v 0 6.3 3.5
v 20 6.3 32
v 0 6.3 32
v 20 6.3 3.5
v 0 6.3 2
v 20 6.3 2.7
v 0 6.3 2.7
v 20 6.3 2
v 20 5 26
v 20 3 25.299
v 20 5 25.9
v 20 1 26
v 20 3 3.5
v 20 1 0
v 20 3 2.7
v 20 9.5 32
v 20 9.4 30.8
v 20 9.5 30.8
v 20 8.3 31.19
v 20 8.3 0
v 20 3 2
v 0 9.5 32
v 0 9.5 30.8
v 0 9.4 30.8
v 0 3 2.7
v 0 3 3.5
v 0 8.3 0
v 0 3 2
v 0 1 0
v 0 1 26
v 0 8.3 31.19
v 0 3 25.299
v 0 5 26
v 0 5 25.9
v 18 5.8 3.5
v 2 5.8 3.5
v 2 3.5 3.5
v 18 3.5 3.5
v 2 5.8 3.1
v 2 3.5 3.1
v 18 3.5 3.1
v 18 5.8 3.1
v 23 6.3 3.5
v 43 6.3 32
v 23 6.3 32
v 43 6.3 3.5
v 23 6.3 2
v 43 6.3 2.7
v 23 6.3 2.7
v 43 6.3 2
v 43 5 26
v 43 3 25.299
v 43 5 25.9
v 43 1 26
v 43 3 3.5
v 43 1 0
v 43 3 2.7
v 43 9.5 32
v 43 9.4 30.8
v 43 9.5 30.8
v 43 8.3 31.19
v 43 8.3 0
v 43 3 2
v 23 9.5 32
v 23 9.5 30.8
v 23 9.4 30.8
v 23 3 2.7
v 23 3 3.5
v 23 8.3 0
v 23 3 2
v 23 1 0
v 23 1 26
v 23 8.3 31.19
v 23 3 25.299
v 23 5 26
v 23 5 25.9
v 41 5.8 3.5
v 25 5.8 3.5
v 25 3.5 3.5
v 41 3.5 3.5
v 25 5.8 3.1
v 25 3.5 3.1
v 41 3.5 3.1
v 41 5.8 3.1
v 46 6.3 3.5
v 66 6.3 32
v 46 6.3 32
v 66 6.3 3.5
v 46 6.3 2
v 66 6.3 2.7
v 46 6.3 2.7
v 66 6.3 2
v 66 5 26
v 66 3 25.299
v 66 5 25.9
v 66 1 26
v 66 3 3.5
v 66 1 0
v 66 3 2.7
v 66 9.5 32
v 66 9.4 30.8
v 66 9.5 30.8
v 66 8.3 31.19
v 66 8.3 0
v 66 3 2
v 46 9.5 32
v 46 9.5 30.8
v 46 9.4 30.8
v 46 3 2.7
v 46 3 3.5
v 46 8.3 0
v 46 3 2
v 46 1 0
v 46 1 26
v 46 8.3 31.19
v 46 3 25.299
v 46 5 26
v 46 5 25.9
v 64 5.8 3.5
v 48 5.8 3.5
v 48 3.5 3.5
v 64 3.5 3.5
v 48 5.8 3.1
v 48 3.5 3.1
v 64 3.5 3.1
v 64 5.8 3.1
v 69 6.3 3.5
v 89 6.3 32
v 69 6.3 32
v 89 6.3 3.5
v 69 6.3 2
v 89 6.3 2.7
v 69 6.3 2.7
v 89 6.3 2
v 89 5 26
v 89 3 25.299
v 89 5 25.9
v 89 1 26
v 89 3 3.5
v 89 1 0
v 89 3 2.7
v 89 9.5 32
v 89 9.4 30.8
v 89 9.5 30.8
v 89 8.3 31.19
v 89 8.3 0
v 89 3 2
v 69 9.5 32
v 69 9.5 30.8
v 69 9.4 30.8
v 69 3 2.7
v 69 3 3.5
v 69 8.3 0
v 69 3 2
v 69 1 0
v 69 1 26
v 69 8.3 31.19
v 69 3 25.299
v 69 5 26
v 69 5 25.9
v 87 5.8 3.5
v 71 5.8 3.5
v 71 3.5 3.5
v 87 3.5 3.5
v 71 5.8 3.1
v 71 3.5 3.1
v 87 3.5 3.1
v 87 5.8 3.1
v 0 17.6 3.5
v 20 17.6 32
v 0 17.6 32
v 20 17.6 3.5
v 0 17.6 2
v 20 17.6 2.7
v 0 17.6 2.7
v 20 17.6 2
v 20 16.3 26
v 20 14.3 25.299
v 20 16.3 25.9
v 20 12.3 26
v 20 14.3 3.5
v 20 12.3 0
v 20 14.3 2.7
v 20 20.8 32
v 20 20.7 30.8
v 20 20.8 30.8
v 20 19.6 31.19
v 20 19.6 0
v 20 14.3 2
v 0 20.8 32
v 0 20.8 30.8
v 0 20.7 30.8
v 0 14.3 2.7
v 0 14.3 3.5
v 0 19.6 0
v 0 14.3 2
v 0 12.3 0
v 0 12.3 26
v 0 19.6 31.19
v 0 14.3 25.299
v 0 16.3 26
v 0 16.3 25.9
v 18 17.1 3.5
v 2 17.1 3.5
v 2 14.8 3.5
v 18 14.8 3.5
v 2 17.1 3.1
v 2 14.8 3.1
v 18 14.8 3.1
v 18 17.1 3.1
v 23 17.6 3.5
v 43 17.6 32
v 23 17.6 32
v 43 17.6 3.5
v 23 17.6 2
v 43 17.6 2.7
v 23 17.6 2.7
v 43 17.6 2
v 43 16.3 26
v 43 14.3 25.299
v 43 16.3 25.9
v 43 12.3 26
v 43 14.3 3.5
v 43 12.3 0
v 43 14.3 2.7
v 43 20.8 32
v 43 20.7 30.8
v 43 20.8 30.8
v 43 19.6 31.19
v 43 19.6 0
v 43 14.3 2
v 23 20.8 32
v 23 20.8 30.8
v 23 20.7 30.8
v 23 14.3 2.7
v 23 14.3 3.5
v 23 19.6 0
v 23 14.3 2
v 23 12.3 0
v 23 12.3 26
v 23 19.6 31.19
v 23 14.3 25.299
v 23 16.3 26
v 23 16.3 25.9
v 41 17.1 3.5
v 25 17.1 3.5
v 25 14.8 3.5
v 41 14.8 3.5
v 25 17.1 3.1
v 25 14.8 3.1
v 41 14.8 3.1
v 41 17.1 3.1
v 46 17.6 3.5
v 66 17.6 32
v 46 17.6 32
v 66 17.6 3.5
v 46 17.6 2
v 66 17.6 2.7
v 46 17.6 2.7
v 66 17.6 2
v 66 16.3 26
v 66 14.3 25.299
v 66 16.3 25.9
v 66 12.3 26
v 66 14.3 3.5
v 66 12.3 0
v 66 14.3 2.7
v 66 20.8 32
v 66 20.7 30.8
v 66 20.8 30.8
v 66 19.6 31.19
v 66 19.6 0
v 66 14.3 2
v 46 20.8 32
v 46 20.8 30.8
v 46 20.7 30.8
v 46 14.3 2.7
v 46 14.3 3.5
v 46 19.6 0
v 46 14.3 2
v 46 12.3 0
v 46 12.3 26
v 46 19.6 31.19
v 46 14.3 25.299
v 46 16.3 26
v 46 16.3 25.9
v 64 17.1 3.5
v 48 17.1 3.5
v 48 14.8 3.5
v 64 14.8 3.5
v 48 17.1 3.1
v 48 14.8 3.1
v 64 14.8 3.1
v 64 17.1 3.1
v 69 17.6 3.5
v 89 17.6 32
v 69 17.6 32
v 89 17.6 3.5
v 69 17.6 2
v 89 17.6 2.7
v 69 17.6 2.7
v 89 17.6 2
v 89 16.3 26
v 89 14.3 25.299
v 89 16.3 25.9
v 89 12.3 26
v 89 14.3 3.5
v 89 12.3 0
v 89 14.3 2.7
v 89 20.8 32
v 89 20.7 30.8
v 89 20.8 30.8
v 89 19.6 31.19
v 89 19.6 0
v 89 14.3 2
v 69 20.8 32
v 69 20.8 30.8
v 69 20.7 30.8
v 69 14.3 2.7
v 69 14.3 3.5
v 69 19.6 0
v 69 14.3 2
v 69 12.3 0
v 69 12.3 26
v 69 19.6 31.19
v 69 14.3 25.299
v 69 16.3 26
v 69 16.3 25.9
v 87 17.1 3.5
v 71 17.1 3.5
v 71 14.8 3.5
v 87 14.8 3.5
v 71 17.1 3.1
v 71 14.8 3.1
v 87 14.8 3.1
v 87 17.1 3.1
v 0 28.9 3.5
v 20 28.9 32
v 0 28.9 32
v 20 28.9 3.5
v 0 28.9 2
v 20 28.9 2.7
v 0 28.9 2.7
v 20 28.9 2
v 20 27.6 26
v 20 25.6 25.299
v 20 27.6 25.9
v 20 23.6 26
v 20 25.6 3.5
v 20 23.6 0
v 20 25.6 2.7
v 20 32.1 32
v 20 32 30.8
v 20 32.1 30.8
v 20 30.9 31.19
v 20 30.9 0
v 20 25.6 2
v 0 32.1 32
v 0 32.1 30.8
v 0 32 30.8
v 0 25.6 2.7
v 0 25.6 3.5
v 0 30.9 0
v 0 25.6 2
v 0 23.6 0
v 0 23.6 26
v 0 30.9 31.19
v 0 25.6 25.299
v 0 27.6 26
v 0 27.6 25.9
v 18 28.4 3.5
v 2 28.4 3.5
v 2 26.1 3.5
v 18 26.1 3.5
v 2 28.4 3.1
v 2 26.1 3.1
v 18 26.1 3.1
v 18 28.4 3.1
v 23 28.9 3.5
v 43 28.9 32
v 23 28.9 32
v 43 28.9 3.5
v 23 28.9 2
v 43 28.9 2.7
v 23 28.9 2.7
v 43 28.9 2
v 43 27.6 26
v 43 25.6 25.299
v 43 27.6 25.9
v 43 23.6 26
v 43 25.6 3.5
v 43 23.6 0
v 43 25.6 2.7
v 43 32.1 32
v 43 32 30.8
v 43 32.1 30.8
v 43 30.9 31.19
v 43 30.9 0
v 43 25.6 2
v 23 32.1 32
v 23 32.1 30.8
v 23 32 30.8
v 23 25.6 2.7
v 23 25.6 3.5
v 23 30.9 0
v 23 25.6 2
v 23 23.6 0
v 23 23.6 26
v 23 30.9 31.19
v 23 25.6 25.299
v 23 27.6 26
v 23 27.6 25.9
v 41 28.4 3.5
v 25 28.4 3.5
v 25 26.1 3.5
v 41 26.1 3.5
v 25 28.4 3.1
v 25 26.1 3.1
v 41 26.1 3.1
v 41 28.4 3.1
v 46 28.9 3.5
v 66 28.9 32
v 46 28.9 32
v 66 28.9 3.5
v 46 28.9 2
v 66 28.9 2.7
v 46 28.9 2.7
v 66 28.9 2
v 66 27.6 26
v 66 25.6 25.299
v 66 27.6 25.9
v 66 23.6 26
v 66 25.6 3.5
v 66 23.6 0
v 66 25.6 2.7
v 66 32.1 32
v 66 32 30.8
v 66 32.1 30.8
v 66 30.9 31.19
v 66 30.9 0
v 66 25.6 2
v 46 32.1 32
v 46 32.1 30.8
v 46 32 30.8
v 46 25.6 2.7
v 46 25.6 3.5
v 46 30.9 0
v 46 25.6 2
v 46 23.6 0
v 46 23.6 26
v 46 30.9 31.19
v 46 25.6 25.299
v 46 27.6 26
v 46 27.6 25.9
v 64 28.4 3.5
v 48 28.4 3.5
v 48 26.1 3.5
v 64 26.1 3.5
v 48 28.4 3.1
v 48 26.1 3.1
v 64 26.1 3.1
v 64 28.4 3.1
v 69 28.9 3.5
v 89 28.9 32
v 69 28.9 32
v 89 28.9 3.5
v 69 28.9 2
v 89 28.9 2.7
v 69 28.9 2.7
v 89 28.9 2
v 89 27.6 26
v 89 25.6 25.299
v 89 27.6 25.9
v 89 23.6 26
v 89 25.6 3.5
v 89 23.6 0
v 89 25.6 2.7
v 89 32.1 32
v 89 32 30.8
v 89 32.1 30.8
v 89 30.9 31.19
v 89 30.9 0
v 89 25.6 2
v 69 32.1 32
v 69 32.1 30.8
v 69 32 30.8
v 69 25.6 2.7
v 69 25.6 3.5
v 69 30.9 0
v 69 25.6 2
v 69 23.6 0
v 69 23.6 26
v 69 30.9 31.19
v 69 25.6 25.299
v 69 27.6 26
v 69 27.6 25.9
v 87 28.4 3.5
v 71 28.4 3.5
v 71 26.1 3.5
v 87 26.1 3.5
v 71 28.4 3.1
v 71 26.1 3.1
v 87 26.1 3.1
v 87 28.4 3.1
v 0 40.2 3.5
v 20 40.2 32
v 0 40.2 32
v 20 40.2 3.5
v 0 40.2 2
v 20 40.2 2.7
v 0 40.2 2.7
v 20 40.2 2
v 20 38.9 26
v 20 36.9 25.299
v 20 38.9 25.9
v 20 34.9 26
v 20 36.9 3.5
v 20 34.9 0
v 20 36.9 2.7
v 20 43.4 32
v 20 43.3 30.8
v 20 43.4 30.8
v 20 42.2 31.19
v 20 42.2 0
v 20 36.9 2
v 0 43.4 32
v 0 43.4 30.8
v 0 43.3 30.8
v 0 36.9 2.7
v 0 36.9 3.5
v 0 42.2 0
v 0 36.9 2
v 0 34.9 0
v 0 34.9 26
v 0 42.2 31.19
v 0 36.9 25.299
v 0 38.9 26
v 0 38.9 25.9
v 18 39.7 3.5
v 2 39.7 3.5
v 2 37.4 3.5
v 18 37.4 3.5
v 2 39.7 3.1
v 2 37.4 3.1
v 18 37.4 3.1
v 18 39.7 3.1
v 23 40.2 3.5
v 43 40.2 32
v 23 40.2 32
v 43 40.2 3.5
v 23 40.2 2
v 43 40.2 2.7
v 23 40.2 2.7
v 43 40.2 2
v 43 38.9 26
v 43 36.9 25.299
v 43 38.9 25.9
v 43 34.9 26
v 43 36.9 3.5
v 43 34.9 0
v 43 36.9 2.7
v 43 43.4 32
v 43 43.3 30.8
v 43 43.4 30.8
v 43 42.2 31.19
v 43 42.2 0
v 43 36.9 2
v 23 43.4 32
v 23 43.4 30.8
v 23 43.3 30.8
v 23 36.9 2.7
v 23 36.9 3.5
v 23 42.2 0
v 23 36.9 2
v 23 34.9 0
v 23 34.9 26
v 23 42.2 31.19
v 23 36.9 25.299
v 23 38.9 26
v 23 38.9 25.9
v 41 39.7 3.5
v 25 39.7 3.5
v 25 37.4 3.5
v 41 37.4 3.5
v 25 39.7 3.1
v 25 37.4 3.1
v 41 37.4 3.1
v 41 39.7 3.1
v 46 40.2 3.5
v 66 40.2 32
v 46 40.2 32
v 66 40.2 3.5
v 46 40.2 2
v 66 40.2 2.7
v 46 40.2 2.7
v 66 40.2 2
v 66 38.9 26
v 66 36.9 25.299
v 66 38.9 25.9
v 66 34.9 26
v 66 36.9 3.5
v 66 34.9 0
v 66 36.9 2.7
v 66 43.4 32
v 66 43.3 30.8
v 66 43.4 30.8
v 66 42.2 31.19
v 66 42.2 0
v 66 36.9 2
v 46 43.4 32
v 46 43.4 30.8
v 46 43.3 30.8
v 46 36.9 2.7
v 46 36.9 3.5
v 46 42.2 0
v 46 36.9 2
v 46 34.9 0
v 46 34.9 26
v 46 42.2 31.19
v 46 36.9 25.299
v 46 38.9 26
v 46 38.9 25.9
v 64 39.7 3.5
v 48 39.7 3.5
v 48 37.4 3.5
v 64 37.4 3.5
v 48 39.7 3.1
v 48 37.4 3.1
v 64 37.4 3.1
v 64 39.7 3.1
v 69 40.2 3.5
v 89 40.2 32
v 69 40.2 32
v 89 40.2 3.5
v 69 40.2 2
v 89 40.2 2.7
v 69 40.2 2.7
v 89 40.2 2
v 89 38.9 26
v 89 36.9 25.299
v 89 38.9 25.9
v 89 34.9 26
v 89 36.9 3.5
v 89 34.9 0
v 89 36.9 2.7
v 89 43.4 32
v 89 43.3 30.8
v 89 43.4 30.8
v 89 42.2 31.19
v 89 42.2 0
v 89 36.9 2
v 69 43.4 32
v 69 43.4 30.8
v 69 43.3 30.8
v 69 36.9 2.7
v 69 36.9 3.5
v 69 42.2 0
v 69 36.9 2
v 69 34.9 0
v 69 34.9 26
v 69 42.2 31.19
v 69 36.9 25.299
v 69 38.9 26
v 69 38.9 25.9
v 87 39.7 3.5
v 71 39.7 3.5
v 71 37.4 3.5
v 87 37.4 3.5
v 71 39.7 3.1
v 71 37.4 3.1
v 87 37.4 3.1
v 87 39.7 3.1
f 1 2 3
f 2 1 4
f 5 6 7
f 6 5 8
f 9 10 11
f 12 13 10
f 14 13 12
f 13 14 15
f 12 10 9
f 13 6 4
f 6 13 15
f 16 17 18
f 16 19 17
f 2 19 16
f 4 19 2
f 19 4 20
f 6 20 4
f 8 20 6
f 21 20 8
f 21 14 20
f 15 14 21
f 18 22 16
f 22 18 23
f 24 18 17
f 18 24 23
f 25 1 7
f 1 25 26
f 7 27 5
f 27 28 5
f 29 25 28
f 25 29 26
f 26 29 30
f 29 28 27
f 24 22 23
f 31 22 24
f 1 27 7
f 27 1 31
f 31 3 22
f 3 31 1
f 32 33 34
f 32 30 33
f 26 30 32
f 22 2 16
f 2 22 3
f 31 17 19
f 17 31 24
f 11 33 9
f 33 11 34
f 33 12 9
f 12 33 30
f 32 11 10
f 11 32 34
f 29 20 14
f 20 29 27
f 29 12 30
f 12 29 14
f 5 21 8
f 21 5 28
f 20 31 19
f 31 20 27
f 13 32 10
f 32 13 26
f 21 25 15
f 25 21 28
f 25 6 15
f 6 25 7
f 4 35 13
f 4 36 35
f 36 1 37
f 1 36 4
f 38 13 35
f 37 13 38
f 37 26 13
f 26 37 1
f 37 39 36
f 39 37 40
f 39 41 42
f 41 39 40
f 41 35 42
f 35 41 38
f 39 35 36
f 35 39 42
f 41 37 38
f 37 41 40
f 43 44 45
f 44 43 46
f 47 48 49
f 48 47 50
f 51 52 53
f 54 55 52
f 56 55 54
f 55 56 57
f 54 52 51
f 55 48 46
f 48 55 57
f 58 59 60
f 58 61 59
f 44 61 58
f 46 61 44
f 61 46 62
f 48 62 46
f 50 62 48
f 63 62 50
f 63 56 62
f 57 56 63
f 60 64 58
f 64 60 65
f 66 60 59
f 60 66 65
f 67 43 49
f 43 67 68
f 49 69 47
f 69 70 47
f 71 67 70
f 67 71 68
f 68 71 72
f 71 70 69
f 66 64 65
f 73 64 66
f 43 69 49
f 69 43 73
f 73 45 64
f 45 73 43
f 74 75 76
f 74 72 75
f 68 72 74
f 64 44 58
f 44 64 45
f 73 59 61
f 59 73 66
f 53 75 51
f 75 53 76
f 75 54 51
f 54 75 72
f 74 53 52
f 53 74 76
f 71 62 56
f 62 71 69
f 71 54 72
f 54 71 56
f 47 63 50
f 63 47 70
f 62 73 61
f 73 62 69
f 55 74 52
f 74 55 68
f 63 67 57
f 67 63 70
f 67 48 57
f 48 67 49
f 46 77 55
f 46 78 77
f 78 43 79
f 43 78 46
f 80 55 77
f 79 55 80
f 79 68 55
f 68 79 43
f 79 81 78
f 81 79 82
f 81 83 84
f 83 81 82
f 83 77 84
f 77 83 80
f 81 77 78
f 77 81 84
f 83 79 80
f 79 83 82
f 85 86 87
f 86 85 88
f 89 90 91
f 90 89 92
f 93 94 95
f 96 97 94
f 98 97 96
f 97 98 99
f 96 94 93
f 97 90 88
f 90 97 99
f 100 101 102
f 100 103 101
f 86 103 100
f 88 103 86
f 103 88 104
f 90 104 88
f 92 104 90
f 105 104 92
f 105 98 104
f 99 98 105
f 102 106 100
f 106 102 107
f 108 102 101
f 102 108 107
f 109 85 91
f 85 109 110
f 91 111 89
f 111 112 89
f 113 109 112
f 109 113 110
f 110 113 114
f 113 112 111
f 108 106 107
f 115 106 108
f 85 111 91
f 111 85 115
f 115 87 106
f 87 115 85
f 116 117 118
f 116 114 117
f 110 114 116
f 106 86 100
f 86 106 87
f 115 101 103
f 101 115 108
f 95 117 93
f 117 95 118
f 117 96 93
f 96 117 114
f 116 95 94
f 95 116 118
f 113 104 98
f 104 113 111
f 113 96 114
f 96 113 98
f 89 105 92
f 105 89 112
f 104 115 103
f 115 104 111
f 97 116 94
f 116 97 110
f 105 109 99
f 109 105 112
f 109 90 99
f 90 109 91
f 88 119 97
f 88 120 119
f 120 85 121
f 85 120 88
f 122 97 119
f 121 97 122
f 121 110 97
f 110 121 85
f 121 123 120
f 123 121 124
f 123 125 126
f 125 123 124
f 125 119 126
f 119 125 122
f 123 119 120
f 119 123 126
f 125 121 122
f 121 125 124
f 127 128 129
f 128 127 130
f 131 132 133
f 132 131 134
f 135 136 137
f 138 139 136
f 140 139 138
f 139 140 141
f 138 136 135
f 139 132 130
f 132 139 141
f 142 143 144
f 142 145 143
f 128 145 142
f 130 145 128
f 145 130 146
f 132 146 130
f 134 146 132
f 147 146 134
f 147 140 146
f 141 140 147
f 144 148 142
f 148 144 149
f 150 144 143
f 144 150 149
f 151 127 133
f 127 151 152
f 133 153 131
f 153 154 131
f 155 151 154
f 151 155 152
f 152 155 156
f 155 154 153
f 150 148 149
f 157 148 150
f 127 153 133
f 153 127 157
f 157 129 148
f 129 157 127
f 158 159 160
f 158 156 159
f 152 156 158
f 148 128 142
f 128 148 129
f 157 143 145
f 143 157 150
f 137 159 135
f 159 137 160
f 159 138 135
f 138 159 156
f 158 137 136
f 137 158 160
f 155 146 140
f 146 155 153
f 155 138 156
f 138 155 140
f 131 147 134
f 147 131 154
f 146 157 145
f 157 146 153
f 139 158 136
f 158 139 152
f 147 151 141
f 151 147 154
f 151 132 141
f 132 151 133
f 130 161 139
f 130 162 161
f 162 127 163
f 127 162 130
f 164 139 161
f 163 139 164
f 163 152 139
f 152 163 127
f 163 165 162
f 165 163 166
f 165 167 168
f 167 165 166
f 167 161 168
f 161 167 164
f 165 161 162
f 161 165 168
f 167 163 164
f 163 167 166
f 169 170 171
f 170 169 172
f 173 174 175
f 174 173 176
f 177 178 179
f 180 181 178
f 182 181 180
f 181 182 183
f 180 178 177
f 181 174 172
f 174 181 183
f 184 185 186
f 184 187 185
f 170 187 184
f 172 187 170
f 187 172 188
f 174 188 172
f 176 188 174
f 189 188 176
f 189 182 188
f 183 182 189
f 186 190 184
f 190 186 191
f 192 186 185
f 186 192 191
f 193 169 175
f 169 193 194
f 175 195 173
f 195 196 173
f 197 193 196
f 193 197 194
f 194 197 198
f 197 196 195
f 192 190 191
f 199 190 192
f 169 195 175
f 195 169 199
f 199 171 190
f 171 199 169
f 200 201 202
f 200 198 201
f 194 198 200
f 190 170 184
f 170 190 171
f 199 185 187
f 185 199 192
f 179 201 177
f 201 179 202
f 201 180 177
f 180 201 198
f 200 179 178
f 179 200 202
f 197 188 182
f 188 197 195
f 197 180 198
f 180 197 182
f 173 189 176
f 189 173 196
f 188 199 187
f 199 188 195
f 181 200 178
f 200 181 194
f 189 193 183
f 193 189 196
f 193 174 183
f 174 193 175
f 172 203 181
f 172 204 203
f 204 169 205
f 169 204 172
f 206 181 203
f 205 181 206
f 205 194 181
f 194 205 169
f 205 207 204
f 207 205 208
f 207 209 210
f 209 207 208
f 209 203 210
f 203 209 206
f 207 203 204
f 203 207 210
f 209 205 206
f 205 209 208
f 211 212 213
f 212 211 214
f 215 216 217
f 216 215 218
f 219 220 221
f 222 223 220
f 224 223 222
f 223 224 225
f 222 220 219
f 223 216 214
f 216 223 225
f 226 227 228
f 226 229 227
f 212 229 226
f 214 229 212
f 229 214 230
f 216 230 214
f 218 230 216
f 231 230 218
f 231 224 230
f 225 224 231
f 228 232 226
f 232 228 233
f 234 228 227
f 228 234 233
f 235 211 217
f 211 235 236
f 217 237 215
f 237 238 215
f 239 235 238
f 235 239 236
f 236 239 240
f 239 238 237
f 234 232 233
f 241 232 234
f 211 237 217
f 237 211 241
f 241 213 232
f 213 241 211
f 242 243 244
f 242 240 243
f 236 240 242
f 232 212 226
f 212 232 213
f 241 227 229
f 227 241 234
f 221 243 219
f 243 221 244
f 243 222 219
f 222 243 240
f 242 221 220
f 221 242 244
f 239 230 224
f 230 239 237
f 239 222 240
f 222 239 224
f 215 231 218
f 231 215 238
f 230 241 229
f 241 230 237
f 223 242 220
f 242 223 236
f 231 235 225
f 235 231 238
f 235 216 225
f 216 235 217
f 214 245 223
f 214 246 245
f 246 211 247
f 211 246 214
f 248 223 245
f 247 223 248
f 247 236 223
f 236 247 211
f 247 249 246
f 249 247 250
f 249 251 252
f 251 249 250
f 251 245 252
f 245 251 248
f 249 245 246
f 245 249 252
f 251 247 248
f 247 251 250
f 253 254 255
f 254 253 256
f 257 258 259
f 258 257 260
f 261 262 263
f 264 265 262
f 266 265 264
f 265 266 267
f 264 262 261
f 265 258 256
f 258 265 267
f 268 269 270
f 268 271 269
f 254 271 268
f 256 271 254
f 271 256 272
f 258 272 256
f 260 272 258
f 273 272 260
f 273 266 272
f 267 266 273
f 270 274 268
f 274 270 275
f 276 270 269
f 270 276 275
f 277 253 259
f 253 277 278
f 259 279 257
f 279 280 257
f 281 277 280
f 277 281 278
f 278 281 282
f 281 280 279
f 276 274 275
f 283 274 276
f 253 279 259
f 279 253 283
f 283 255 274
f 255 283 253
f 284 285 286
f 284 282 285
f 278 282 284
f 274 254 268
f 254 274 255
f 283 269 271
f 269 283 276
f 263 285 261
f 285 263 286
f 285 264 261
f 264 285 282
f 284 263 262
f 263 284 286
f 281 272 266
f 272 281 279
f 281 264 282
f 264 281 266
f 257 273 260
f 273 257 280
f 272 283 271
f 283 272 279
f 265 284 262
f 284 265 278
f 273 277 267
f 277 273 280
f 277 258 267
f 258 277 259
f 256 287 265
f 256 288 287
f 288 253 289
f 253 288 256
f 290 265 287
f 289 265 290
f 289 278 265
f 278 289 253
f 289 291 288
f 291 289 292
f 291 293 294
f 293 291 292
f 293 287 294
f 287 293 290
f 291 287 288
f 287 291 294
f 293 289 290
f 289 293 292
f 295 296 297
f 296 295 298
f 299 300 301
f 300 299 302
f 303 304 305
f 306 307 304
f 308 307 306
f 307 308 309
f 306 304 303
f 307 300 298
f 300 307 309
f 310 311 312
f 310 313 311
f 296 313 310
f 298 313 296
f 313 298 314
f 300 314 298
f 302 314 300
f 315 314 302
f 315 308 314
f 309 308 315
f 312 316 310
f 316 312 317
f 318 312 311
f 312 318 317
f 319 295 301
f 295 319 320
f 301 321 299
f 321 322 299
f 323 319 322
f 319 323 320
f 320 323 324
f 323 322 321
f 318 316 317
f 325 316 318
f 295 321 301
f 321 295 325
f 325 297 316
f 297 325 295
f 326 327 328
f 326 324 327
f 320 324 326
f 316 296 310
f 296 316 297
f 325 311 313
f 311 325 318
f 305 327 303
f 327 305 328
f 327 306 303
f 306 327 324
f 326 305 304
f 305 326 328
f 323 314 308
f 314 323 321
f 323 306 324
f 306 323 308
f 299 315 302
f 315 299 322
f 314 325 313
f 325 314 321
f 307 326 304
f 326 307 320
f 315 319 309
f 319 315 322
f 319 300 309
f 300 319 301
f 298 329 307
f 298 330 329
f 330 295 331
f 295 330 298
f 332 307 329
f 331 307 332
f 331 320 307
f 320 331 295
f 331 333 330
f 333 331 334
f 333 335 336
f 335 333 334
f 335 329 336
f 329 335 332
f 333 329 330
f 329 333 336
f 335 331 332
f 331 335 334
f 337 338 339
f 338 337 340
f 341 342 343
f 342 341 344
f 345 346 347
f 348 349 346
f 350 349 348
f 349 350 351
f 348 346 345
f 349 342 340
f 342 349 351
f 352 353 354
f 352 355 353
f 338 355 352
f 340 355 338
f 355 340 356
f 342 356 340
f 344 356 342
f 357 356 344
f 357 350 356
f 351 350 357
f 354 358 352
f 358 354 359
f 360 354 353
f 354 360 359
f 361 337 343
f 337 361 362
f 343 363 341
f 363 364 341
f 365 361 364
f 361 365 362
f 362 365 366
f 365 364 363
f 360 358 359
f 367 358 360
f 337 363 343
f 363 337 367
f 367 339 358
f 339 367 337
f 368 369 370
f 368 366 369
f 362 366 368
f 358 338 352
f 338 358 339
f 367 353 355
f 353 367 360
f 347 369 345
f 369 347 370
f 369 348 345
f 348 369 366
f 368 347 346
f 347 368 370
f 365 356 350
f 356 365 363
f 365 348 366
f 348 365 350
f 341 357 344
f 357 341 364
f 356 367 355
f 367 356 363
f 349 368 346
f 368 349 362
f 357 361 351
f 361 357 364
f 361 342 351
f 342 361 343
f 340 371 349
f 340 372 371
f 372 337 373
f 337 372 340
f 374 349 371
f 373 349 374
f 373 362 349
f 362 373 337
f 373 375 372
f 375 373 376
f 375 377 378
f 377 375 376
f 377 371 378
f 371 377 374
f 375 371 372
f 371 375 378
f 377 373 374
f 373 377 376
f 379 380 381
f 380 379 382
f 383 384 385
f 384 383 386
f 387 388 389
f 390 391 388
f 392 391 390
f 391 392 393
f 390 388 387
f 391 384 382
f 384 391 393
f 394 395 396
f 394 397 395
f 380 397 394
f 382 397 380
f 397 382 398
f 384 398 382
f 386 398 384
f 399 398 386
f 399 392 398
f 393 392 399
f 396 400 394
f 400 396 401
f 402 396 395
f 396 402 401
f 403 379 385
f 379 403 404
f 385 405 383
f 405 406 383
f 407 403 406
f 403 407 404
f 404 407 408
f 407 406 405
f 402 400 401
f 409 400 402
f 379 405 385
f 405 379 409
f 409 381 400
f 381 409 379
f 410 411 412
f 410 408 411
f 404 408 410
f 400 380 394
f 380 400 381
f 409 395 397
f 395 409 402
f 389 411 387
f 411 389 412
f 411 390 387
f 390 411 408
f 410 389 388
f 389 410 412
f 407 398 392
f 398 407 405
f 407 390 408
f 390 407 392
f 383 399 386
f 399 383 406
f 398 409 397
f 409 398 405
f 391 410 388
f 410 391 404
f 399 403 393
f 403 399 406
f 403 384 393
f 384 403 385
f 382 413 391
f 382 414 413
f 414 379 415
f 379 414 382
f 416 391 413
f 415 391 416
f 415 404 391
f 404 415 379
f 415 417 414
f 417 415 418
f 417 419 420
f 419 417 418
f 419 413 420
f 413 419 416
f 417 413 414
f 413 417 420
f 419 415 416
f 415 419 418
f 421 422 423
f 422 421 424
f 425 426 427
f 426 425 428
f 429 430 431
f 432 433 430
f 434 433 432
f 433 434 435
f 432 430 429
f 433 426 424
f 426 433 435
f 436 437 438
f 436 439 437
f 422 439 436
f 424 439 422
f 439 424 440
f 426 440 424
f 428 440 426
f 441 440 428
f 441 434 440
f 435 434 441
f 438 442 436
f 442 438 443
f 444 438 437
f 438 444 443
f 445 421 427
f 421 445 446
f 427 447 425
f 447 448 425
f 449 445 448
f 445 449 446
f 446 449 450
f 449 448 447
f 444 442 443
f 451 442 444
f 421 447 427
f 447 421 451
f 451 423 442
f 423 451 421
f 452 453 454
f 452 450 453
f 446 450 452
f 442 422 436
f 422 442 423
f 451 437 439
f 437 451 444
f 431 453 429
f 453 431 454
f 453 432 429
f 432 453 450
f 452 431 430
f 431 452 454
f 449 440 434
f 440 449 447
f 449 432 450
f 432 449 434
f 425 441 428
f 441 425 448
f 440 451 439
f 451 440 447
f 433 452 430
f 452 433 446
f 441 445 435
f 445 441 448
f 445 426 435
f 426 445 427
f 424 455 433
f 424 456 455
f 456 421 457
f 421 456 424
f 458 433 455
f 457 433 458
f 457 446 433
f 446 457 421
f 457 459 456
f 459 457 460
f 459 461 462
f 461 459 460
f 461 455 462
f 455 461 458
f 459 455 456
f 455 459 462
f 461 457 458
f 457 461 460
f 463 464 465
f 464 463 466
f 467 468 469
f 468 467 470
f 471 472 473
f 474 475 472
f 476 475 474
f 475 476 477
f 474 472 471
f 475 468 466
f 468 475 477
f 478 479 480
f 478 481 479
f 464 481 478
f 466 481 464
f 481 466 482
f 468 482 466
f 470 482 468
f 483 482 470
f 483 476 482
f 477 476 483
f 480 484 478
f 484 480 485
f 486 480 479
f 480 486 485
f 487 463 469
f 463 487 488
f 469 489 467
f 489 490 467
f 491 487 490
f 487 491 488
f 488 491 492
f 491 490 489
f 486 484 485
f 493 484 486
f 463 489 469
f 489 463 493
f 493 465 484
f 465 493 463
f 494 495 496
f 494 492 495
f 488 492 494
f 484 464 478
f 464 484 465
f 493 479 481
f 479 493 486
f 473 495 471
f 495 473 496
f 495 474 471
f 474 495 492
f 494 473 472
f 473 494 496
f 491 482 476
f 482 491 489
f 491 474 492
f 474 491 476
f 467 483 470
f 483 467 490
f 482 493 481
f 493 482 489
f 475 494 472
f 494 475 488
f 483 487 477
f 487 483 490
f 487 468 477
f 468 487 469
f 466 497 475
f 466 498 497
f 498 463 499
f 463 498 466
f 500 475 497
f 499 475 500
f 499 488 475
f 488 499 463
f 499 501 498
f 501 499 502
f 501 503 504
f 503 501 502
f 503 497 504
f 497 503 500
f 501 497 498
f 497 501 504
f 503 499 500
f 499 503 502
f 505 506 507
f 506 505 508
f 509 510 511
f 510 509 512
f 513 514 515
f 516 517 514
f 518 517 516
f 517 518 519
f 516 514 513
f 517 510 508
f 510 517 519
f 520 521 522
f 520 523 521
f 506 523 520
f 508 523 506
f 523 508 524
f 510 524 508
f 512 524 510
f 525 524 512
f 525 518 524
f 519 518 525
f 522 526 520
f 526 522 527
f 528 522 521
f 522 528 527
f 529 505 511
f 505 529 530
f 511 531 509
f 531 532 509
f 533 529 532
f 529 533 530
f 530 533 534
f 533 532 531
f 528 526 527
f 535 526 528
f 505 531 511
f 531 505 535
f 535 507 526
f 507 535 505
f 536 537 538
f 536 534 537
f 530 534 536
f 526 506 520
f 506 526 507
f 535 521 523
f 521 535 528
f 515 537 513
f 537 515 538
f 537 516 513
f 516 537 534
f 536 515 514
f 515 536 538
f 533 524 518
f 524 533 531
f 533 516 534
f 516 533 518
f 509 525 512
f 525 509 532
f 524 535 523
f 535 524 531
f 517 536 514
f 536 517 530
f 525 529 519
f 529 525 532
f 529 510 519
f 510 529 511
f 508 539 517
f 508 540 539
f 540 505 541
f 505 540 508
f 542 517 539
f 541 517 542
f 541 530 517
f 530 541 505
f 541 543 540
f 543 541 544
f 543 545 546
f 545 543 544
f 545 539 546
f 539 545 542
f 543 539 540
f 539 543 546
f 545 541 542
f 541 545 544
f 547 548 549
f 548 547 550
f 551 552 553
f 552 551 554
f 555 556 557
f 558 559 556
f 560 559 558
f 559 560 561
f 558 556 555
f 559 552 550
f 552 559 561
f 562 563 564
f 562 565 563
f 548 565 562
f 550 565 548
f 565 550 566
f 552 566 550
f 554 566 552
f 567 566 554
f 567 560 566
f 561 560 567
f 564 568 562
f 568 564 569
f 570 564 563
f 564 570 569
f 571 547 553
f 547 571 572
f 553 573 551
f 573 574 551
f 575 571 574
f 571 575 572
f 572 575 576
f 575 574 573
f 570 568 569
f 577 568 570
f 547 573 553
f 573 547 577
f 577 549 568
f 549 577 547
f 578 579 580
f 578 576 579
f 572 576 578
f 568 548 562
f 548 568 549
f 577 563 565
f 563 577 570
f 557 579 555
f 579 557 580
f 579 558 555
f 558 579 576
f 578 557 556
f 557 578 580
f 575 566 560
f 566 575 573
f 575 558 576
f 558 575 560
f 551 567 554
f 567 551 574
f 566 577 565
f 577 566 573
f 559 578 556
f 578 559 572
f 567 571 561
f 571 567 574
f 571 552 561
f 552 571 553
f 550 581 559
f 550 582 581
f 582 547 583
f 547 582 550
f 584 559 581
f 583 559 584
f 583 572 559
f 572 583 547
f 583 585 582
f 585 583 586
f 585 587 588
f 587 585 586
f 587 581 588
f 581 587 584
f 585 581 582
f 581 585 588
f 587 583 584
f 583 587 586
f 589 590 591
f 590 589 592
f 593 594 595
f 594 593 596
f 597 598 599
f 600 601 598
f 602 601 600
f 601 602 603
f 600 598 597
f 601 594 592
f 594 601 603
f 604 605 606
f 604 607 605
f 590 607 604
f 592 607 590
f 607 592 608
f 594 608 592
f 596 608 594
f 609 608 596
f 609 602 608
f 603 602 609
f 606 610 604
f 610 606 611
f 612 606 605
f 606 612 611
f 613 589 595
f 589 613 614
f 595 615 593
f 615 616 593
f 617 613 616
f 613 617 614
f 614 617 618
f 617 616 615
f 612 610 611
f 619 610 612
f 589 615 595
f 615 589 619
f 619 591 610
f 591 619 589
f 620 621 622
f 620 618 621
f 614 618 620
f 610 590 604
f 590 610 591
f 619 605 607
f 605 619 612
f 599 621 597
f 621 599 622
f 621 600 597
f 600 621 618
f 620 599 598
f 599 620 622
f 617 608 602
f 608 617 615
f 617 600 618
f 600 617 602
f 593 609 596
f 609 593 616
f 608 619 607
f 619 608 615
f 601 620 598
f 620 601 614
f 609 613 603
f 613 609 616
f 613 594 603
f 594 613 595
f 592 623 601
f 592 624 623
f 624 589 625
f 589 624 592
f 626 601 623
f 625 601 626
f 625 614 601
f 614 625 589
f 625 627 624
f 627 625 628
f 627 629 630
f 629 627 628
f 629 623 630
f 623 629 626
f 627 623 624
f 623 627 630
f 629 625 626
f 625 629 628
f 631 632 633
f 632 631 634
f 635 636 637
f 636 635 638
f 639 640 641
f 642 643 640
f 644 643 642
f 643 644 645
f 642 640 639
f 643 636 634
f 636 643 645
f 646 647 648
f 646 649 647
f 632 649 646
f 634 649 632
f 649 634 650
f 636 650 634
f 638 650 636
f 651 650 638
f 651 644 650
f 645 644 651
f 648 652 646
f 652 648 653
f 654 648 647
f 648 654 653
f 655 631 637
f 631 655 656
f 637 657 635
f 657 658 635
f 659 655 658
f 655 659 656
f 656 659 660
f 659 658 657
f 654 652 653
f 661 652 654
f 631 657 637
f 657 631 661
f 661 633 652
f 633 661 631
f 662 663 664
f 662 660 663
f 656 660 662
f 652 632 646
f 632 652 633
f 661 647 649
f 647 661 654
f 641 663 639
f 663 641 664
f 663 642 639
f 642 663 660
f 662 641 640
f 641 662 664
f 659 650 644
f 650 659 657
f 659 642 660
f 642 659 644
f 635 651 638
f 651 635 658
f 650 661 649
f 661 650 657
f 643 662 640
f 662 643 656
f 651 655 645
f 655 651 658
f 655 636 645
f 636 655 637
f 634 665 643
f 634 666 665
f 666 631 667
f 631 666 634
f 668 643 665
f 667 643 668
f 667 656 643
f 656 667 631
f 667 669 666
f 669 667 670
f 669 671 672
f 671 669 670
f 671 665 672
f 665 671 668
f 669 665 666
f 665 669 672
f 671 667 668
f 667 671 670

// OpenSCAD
// ============================================================
// PRINT: SNAP-FIT CLIPS — 16 unidades
// Clips de fixação para tampa e base da caixa
// Mesa: 92mm × 48mm — cabe na Ender 3 (200×200mm) ✓
// Tempo estimado: ~2h
// ============================================================
// Orientação: ponte na mesa (Z=0), pernas para cima
// Infill recomendado: 80% (precisa ser resistente)
// ============================================================

use <SNAP_TAMPA.scad>

gap = 3;
clip_w = 20;     // largura X
clip_d = 8.3;    // profundidade Y
parede = 2;      // espessura ponte

// 4 colunas × 4 fileiras = 16 clips
for (row = [0:3]) {
    for (col = [0:3]) {
        translate([col * (clip_w + gap), row * (clip_d + gap), 0])
        // Orientação: ponte na mesa, pernas para cima
        translate([0, clip_d, parede])
        rotate([180, 0, 0])
            snap_clip_tampa();
    }
}

// Guia visual da mesa (não imprime)
%translate([0, 0, -0.5])
    cube([200, 200, 0.1]);
